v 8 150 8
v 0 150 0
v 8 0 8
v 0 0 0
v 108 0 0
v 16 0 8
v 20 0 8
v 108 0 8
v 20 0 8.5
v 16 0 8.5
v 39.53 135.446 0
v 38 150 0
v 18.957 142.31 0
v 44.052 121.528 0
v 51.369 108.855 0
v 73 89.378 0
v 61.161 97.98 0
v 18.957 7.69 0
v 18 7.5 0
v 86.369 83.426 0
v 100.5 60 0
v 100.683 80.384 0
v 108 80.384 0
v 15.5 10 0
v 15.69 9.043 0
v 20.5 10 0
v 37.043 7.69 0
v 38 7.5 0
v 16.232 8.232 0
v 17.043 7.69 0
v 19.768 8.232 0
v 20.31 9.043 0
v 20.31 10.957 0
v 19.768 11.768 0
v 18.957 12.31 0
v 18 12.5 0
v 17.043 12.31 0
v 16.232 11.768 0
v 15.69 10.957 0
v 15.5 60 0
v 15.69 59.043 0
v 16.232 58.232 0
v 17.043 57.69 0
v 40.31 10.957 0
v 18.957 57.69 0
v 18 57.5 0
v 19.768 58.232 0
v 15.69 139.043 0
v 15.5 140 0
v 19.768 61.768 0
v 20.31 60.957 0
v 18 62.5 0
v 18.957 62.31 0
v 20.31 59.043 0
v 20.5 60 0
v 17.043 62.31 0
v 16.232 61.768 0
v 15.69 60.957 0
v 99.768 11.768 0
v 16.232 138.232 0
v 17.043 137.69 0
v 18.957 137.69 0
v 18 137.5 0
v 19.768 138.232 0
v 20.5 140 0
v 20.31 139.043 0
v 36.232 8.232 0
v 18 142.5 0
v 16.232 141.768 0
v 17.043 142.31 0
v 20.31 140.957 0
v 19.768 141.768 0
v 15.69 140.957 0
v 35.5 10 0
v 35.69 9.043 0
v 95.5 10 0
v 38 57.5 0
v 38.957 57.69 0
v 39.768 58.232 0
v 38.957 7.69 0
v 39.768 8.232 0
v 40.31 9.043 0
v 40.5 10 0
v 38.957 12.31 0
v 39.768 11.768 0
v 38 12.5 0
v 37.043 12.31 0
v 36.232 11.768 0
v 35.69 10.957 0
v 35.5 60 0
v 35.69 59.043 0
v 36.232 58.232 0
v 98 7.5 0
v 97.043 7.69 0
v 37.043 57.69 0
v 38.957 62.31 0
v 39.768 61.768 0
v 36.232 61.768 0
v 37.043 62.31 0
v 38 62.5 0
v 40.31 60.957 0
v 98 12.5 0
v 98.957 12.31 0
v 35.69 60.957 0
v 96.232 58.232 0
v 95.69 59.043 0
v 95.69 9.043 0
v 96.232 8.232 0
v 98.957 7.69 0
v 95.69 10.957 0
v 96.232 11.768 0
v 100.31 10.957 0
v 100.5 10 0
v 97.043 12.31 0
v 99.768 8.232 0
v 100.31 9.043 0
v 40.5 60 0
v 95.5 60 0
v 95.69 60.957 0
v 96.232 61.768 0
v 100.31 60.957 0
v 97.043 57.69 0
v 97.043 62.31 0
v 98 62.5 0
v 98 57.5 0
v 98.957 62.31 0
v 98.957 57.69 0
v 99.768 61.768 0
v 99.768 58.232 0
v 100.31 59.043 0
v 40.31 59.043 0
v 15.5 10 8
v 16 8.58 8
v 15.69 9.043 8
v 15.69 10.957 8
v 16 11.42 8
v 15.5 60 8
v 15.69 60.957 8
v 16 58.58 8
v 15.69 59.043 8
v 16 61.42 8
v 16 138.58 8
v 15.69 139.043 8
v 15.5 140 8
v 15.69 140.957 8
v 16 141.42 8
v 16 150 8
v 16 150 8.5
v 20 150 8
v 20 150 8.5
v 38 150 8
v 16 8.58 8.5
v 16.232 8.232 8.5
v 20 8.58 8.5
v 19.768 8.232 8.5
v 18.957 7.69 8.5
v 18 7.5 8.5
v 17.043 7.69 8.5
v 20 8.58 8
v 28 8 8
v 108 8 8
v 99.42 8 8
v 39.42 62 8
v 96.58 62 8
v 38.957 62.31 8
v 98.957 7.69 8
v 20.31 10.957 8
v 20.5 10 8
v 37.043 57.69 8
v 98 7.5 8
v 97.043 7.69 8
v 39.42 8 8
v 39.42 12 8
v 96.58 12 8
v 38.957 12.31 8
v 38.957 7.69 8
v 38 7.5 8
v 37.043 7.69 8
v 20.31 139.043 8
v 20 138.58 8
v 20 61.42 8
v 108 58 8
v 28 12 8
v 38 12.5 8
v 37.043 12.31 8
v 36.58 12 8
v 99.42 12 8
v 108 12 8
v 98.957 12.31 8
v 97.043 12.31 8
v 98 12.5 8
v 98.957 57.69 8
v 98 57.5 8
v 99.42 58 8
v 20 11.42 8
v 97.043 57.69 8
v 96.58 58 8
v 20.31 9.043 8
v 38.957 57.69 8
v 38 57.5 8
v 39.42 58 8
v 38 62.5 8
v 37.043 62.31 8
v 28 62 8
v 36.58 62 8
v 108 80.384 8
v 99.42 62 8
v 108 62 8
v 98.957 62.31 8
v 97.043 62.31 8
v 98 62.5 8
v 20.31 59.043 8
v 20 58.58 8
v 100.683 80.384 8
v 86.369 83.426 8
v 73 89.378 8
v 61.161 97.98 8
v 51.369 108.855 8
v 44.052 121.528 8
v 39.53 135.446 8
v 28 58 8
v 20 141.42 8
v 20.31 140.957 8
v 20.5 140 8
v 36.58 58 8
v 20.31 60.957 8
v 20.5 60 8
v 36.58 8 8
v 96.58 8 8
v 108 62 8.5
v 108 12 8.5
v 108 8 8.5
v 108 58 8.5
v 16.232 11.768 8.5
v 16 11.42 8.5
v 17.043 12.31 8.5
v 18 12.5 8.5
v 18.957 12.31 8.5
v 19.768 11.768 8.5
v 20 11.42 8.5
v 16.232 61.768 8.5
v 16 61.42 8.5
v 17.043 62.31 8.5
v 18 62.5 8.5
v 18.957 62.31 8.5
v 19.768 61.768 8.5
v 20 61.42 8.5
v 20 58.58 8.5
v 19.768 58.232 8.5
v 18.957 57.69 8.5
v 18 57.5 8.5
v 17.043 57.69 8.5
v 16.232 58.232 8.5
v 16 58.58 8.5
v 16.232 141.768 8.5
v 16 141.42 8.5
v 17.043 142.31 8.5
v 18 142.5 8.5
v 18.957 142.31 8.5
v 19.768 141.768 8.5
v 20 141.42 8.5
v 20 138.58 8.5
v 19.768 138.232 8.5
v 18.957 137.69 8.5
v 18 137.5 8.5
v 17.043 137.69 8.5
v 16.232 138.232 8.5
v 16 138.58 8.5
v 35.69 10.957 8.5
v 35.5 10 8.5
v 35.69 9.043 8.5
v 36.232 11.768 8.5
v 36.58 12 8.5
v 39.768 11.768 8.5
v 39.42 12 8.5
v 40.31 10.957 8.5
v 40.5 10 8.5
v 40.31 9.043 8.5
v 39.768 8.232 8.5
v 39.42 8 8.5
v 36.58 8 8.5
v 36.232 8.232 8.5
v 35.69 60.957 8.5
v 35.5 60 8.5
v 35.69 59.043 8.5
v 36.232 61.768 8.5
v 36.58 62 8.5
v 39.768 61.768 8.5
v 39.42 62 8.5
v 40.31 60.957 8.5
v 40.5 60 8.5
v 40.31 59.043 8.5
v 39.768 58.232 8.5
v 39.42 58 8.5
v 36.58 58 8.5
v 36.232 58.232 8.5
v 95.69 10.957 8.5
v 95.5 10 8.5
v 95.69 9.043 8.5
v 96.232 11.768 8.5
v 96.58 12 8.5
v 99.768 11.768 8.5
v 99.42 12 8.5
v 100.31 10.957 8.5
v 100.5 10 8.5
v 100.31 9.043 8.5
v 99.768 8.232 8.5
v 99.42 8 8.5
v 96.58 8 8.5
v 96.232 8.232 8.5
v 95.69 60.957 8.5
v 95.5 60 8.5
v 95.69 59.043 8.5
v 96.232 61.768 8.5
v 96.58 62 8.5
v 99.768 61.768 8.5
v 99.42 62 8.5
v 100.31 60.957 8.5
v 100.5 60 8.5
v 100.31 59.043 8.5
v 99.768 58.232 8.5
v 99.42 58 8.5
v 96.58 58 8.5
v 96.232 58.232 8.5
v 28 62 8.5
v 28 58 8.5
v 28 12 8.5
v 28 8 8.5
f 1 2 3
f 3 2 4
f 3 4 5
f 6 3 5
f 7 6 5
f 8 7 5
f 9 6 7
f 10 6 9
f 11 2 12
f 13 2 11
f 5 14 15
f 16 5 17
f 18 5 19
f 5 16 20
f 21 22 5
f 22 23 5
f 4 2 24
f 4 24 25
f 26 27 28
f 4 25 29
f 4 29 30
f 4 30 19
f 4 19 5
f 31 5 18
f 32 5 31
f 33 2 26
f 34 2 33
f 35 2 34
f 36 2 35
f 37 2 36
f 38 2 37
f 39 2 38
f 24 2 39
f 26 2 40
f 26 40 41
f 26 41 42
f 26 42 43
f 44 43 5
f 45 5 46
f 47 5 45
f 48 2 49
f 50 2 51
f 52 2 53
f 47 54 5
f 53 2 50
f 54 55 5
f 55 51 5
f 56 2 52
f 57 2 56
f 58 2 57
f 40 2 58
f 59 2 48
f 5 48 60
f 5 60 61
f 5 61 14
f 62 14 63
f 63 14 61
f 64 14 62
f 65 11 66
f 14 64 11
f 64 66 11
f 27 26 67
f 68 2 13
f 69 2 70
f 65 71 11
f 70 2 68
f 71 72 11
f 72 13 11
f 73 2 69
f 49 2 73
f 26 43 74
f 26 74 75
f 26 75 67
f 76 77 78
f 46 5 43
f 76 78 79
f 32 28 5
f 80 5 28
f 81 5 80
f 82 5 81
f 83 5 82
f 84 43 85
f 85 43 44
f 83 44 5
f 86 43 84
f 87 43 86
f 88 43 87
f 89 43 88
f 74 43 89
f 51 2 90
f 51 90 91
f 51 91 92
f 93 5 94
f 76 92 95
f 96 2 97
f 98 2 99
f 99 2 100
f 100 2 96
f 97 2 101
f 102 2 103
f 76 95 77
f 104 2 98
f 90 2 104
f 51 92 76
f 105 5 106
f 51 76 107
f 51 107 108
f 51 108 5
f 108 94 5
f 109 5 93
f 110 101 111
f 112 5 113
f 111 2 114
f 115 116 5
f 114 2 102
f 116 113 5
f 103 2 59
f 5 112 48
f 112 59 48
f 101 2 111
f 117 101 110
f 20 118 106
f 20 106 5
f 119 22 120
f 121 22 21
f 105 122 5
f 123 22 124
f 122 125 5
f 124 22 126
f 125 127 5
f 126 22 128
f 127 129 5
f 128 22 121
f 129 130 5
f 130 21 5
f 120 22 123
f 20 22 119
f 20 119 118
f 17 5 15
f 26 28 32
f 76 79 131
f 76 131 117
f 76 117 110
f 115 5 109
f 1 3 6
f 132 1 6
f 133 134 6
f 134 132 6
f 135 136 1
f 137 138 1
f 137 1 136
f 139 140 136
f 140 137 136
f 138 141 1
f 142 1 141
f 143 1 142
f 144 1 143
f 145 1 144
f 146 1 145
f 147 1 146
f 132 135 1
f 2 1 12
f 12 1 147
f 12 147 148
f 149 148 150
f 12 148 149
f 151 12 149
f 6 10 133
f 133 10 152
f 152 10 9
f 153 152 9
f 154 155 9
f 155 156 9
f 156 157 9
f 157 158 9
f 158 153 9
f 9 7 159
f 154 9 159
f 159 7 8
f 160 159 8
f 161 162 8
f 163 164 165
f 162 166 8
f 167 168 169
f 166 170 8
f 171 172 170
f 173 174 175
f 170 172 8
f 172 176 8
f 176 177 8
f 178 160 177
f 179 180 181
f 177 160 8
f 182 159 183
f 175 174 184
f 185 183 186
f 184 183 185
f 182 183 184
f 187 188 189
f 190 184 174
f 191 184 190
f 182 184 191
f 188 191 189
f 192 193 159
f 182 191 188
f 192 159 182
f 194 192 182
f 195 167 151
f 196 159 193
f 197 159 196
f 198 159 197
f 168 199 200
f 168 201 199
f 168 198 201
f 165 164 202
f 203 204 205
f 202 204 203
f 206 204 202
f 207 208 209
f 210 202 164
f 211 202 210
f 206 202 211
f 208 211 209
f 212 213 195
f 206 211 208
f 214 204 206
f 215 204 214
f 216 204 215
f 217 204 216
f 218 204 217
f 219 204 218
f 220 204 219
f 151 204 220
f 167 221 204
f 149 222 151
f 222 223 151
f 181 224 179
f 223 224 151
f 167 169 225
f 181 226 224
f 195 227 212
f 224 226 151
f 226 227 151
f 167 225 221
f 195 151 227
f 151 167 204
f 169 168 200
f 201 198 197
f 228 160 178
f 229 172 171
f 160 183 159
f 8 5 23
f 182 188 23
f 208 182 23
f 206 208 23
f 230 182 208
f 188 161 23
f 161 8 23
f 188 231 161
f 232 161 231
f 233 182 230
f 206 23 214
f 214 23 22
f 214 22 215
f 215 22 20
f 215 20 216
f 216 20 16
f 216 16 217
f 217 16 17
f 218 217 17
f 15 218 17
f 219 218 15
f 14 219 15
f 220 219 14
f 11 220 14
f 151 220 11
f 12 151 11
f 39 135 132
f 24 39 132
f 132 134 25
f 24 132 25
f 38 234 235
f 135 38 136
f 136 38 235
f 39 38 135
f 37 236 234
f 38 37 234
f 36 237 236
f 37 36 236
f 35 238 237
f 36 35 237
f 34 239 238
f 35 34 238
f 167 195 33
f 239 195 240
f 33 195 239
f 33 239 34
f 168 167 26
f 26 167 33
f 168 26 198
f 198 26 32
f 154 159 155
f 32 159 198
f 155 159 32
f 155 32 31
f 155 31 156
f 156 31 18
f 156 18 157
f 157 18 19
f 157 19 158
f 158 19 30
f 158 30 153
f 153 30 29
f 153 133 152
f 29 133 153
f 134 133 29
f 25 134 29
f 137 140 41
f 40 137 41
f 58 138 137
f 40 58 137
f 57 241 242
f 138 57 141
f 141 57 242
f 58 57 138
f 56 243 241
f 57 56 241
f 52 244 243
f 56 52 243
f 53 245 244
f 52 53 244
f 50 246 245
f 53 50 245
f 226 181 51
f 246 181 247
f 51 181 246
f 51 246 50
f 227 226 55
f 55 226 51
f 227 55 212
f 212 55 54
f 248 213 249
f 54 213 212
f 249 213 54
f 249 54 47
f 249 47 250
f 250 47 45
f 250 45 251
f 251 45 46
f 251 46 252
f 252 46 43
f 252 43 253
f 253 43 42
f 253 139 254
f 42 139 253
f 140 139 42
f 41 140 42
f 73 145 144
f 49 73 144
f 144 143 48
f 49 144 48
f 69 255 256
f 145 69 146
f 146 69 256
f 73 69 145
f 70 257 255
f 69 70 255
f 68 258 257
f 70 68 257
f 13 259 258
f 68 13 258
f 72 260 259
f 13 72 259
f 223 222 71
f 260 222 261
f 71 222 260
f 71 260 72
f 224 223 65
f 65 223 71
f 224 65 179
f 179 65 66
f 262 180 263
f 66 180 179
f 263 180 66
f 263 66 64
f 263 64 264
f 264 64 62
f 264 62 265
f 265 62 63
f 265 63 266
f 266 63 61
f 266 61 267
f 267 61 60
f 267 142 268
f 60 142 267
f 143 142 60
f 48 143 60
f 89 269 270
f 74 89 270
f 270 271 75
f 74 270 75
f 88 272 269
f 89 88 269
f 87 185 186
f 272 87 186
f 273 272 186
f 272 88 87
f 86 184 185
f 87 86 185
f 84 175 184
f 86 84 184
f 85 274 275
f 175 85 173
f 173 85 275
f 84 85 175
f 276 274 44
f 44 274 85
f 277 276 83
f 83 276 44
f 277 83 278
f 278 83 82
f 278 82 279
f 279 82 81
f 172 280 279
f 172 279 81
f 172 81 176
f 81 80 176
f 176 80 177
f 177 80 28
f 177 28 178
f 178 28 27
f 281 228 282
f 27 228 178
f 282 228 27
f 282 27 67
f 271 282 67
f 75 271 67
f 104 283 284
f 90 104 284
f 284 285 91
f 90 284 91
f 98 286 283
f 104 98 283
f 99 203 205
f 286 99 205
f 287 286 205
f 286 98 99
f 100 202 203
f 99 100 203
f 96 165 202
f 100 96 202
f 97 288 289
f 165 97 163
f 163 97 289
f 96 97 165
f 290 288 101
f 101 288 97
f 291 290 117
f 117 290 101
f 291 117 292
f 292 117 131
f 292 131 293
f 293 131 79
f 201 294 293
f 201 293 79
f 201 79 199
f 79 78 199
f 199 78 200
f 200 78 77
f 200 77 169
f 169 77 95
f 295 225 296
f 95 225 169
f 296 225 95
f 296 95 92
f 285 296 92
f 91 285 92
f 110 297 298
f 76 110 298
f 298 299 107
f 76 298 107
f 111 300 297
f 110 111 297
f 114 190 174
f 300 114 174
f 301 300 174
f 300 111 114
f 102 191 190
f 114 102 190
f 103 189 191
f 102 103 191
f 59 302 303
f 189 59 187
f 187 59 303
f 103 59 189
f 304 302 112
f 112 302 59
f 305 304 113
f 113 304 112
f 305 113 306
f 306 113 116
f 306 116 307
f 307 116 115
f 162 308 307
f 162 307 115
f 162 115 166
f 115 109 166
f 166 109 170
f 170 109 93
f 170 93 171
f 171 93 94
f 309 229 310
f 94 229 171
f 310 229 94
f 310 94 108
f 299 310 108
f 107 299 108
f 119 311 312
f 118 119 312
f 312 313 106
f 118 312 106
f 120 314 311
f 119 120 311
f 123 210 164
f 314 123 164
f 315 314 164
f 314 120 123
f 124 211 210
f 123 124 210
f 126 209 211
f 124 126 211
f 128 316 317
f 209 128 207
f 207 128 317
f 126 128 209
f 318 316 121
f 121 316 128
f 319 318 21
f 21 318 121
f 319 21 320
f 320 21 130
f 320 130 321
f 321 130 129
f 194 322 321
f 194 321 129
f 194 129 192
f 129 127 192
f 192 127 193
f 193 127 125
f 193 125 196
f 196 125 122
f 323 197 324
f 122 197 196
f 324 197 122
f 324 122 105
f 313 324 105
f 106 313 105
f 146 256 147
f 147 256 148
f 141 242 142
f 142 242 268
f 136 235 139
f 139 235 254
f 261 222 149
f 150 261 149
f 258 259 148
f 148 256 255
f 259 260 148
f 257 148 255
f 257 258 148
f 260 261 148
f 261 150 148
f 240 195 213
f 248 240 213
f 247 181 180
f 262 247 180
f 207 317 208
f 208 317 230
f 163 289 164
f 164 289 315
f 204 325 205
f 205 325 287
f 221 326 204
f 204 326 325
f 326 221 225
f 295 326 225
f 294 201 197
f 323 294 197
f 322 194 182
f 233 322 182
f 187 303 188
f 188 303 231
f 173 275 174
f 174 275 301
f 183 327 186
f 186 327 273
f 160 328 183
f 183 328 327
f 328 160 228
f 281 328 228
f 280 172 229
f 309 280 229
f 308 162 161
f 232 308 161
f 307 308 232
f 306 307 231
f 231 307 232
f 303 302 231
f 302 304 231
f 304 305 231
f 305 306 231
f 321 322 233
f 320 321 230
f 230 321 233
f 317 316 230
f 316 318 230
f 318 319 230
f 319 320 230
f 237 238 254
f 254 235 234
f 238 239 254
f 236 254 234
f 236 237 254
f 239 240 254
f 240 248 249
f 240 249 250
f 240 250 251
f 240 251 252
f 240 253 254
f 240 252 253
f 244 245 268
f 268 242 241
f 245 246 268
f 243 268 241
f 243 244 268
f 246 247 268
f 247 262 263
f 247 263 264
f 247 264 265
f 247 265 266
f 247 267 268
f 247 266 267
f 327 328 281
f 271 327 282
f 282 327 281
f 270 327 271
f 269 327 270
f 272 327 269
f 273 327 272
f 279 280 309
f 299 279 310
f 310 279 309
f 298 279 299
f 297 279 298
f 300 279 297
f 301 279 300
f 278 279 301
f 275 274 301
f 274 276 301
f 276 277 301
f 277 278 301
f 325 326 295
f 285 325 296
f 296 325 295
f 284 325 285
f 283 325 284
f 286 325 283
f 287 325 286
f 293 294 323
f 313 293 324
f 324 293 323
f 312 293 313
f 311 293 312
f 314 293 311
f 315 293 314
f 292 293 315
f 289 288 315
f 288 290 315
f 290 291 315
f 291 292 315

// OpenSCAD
offsetx =8;
offsety  =0;
width_ridge=4;
height = 150;
width = 100+offsetx;
barwidth = 20;
thickness=8;
spacing_bars = 50;
largeCircle = 70.0;
holeSize=5;

holes = [
	[barwidth /2,barwidth /2],
	[barwidth+barwidth/2,barwidth /2],
	[width-offsetx-barwidth/2,barwidth /2],

	[barwidth /2,barwidth /2+spacing_bars],
	[barwidth+barwidth/2,barwidth /2+spacing_bars],
	[width-offsetx-barwidth/2,barwidth /2+spacing_bars],

	[barwidth /2,height-barwidth /2],
];



difference() {
union() {
cube([width,height,thickness],false);
translate([8+offsetx,0,0.5]) {
	cube([width_ridge,height,thickness],false);
}
translate([offsetx + barwidth,offsety+barwidth/2-width_ridge/2,0.5]) {
	cube([width - barwidth - offsetx,width_ridge,thickness],false);
}

translate([offsetx + barwidth,offsety+spacing_bars+barwidth/2-width_ridge/2,0.5]) {
	cube([width - barwidth - offsetx,width_ridge,thickness],false);
}
}

translate([0,0,-0.1]) {

	translate([width,height,0]) {
		cylinder(h=thickness+2,r=largeCircle, center = false, $fs=6);
	}

	for(i = holes) {
		translate([offsetx + i[0],i[1],0])
			cylinder(h=thickness+2,r=holeSize/2, center = false, $fs=1);
	}
	
}
rotate([0,-45,0])
cube([30,height,20],false);

}
